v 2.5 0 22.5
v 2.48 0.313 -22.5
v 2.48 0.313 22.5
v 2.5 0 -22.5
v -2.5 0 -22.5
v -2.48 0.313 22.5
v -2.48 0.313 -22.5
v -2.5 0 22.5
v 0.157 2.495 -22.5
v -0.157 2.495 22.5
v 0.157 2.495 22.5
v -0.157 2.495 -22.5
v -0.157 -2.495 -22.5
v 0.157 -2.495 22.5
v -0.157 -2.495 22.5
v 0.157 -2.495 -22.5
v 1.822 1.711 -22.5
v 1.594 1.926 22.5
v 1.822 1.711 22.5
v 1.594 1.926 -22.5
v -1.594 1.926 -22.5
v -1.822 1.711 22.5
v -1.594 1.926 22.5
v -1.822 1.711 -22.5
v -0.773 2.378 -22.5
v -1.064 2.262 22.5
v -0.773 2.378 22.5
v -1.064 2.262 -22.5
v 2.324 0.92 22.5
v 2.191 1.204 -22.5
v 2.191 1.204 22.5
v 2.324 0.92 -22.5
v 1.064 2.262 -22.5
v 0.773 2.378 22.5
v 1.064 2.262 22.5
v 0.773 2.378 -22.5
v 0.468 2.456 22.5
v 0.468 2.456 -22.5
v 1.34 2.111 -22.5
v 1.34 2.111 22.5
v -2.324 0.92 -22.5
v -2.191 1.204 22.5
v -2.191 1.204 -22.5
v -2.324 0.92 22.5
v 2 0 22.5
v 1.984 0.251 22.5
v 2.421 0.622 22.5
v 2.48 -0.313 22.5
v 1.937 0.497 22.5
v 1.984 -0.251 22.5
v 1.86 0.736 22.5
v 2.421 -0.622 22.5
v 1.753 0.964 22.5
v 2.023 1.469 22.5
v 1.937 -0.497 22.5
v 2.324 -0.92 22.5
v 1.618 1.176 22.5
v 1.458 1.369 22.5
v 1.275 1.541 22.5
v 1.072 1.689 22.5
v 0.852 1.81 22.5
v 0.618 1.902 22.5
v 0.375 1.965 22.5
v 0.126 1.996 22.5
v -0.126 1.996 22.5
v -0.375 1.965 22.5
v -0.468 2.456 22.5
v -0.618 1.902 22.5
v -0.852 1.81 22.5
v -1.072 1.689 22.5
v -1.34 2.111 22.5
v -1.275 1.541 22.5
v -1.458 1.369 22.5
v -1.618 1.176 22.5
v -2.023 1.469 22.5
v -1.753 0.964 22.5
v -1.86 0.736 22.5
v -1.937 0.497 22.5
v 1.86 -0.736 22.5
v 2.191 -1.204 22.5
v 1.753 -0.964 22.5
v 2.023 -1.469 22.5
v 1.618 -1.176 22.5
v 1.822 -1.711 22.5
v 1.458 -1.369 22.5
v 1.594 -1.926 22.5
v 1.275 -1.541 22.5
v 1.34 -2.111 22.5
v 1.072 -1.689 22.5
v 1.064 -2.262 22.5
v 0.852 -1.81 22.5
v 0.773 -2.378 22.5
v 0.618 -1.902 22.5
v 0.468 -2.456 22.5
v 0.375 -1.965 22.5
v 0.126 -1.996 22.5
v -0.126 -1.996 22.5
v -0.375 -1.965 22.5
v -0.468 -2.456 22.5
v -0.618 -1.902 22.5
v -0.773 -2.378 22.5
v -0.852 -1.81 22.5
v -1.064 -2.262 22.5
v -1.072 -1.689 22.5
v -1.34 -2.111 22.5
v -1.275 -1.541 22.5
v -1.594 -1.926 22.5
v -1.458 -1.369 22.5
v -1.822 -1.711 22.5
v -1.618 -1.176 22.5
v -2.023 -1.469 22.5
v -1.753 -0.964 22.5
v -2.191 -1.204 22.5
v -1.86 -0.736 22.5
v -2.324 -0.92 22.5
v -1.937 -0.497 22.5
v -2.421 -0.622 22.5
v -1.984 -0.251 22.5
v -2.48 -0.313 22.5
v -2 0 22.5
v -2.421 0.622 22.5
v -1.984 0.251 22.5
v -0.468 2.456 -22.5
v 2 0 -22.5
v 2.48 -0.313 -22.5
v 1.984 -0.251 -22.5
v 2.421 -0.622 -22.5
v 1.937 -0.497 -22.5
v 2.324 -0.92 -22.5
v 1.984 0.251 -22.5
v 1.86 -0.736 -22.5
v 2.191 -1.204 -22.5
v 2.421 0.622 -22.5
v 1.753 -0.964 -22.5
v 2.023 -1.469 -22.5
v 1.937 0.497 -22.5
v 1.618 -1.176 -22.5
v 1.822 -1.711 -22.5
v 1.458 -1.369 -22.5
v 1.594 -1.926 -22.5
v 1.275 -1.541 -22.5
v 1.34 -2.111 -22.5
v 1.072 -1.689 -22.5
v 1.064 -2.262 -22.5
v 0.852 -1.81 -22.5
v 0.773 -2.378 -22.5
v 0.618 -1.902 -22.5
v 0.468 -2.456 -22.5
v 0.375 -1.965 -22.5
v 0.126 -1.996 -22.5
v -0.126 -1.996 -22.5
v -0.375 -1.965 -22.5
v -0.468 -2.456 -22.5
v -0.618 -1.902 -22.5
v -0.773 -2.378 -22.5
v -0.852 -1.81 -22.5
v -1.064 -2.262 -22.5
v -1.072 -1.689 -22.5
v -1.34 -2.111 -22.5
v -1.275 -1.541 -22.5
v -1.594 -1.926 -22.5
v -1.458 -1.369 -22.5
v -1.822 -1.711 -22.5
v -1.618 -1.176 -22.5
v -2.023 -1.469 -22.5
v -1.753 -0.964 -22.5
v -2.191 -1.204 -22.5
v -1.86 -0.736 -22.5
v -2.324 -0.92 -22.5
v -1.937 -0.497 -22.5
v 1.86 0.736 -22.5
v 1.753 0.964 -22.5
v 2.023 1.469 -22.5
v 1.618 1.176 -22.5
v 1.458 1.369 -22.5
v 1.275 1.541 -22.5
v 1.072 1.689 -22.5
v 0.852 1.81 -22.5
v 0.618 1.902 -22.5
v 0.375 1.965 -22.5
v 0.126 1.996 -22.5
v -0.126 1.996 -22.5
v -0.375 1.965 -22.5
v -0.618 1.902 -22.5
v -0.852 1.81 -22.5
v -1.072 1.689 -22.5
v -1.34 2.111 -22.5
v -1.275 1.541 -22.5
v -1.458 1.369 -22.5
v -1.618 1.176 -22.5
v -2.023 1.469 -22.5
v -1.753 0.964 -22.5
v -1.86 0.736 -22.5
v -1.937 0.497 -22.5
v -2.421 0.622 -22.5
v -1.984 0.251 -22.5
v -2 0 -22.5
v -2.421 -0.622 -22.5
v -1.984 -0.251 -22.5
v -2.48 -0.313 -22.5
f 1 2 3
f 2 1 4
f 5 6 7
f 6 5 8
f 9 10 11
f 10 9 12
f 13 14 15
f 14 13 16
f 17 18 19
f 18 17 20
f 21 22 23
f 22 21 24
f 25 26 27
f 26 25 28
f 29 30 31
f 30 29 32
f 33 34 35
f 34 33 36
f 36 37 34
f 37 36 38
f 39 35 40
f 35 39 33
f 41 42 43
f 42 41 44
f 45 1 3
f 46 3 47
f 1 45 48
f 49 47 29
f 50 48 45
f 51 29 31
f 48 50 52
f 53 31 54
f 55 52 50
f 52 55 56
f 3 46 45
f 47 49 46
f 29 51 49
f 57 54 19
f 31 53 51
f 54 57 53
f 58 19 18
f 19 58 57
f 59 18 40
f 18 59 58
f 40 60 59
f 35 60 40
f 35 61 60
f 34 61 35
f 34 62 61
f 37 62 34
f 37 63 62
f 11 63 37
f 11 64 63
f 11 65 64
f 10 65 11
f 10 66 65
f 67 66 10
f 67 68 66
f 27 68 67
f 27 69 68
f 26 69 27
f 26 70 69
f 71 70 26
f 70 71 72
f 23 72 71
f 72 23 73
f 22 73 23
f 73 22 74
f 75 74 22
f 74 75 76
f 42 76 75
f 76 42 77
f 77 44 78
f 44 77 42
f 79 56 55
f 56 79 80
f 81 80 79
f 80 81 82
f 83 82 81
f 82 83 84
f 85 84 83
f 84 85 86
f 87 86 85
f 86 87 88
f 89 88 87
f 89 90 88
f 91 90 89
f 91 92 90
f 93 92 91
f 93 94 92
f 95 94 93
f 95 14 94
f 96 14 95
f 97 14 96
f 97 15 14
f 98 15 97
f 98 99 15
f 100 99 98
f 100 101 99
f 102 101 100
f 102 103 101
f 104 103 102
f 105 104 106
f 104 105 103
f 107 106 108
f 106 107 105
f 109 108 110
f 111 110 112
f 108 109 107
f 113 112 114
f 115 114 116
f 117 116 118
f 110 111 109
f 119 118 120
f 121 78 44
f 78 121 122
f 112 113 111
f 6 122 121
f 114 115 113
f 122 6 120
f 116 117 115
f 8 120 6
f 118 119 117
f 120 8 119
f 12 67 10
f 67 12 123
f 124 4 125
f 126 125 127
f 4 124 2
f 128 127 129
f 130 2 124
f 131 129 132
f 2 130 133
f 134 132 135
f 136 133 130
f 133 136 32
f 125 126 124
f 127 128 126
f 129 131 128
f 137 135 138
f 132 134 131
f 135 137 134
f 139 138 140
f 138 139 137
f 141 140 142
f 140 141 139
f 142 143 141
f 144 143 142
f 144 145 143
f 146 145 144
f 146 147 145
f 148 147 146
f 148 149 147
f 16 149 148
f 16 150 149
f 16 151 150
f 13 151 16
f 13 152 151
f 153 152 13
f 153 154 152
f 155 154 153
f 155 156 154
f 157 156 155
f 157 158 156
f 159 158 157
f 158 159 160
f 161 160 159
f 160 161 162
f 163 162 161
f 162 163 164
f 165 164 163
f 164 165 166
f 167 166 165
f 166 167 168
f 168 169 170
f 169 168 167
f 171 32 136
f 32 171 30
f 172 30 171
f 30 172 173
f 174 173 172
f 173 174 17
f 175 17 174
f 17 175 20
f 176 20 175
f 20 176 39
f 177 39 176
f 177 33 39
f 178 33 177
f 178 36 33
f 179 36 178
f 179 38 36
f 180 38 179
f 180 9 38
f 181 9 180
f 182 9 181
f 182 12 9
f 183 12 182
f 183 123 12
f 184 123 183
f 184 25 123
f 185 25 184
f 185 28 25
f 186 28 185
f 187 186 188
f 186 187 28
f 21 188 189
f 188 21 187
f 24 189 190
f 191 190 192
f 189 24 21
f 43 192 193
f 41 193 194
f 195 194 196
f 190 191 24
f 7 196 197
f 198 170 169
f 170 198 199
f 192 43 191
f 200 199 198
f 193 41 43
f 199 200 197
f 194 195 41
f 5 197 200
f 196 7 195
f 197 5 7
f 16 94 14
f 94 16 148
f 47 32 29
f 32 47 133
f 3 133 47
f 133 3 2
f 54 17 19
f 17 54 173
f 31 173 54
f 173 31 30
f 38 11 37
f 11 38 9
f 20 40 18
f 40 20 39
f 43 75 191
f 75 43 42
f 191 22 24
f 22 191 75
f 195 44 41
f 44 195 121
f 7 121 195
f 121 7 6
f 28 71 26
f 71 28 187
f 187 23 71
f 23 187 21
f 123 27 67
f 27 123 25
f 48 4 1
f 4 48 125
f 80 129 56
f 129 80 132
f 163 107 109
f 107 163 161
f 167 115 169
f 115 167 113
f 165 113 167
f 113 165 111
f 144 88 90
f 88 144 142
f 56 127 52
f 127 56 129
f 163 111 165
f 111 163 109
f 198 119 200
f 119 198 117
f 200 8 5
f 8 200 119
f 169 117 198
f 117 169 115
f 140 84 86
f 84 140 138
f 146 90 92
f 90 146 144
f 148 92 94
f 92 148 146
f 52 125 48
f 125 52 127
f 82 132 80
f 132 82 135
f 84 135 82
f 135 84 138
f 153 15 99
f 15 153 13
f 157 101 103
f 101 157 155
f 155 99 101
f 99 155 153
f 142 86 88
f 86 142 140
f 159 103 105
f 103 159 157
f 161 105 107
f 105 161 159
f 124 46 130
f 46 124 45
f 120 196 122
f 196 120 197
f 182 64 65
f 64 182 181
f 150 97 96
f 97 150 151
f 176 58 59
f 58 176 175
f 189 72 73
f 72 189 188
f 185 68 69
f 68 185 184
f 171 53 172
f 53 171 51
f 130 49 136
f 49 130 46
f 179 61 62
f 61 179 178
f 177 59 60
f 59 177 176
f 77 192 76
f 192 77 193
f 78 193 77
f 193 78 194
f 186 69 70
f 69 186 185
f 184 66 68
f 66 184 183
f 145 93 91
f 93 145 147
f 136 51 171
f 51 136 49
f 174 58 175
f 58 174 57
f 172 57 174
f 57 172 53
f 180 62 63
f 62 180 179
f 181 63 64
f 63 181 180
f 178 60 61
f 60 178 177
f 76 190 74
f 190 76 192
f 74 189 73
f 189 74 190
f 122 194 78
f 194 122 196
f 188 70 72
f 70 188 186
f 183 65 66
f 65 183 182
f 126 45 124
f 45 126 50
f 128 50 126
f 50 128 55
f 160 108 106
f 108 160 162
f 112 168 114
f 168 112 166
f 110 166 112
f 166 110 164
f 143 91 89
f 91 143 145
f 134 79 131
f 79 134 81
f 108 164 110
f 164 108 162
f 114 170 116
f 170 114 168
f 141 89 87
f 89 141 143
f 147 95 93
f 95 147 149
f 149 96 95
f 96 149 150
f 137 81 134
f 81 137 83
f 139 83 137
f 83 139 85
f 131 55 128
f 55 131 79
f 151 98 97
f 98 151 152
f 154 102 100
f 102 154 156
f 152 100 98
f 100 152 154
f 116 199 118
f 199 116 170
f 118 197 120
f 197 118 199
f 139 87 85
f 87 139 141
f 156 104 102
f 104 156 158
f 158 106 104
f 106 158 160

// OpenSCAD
$fn = 50;


difference() {
	union() {
		translate(v = [0, 0, -22.5000000000]) {
			cylinder(h = 45, r = 2.5000000000);
		}
	}
	union() {
		translate(v = [0, 0, -100.0000000000]) {
			cylinder(h = 200, r = 2);
		}
	}
}
